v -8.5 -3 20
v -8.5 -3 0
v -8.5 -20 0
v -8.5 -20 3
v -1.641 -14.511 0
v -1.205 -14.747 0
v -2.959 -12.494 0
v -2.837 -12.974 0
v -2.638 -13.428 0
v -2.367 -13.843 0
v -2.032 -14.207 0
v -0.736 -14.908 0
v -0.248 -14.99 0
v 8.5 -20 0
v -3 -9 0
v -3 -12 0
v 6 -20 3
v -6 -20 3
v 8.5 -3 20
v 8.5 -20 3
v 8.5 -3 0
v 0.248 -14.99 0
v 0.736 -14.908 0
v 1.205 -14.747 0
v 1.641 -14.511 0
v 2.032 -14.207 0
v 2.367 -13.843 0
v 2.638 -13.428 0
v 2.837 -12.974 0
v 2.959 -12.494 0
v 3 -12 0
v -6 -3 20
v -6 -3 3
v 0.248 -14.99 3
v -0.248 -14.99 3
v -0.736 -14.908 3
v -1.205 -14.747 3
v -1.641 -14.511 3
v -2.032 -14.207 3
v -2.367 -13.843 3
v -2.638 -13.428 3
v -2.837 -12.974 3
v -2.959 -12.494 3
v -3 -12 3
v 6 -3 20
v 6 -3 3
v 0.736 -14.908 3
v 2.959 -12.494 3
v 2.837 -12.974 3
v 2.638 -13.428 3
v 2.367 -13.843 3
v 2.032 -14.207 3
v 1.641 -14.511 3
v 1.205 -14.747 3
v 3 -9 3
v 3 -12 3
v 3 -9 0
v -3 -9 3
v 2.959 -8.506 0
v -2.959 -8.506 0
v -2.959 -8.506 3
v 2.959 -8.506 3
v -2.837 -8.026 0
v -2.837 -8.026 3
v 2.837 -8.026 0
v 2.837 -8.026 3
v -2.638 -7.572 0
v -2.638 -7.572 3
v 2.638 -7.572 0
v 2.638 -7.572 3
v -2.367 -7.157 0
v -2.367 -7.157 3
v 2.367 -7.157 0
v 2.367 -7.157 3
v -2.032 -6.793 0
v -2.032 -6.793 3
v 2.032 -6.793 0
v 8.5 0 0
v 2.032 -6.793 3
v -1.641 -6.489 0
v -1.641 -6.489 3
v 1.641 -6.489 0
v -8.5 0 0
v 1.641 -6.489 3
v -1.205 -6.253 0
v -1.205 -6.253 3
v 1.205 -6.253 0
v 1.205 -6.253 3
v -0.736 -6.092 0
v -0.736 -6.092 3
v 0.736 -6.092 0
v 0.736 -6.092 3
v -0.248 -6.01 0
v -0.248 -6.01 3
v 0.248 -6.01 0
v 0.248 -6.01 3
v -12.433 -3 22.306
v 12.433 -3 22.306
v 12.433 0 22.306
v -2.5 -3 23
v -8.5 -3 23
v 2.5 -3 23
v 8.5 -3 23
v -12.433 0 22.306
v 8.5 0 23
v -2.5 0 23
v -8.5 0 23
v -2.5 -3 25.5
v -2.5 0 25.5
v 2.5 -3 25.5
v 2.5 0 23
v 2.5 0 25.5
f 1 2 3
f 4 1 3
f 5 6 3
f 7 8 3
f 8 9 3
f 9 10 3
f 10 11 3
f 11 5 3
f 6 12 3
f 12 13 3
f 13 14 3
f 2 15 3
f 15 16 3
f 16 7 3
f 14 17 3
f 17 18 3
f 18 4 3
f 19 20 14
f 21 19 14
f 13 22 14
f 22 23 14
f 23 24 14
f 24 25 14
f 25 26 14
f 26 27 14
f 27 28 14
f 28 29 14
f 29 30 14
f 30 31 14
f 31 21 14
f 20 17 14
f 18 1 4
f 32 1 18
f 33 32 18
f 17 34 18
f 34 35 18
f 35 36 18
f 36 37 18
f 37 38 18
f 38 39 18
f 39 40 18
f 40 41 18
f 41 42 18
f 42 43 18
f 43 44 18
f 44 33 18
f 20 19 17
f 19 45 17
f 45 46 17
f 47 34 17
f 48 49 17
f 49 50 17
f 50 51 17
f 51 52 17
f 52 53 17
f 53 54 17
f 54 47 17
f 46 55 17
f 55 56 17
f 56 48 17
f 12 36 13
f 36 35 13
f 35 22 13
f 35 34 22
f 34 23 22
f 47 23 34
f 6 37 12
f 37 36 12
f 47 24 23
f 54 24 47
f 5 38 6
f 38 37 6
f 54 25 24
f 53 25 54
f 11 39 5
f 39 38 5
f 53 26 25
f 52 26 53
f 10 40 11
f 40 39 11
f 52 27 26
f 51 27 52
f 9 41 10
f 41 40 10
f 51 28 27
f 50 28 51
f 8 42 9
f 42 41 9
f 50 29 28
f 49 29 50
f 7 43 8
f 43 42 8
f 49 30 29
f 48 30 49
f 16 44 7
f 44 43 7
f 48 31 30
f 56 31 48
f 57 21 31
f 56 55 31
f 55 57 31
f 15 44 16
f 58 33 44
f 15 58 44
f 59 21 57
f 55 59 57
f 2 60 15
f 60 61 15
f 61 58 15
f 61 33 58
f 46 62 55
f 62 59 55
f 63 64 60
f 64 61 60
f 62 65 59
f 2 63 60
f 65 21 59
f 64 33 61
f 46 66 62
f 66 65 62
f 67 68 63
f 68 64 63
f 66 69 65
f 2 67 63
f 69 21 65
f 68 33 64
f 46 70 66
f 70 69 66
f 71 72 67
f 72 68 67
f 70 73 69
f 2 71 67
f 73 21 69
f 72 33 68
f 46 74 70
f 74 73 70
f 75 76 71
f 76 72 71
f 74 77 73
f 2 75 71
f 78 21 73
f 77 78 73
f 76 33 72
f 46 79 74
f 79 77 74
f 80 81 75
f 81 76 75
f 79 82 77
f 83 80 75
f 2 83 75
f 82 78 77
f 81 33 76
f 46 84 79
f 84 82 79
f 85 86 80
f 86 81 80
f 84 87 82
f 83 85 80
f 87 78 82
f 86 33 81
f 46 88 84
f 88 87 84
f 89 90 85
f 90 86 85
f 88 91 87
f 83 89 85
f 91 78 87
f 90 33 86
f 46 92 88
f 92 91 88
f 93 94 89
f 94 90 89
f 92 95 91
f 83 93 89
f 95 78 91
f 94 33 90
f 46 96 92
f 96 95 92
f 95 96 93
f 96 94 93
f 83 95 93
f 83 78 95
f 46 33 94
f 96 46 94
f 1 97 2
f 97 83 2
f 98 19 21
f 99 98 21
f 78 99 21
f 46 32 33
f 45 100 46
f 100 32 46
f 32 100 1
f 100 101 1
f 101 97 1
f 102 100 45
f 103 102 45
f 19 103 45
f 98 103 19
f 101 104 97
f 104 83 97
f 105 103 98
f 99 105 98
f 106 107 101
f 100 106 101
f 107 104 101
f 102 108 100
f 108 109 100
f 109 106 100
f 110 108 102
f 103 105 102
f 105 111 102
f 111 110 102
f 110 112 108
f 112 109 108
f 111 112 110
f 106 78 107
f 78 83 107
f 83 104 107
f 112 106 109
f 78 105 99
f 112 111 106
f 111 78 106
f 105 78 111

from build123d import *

# Parameters (mm, degrees)
BOSS_EXTRUDE1_DEPTH      = 8.5
SKETCH2_W                = 17
SKETCH2_H                = 17
CUT_EXTRUDE1_DEPTH       = 6
CUT_EXTRUDE2_REACH       = 5
RESSALTO_EXTRUS_O1_DEPTH = 3
RESSALTO_EXTRUS_O2_DEPTH = 3
ESBO_O3_W                = 5
ESBO_O3_H                = 3
RESSALTO_EXTRUS_O3_DEPTH = 2.5


with BuildPart() as part:
    # Sketch1 → Boss-Extrude1 (new body, symmetric)
    with BuildSketch(Plane(origin=(0, 0, 0), x_dir=(0, 0, -1), z_dir=(1, 0, 0))):
        Polygon((0, 0), (-20, 0), (-20, -3), (-11.5, -11.5), (-3, -20), (0, -20), align=None)
    extrude(amount=BOSS_EXTRUDE1_DEPTH, both=True)

    # Sketch2 → Cut-Extrude1 (cut, symmetric)
    with BuildSketch(Plane(origin=(0, 0, 0), x_dir=(0, 0, -1), z_dir=(1, 0, 0))):
        with Locations((-11.5, -11.5)):
            Rectangle(SKETCH2_W, SKETCH2_H)
    extrude(amount=CUT_EXTRUDE1_DEPTH, both=True, mode=Mode.SUBTRACT)

    # Sketch3 → Cut-Extrude2 (cut, up to next)
    with BuildSketch(Plane.XY.offset(3), mode=Mode.PRIVATE) as cut_extrude2_sk1:
        with BuildLine():
            Line((-3, -9), (-3, -12))
            ThreePointArc((-3, -12), (0, -15), (3, -12))
            Line((3, -12), (3, -9))
            ThreePointArc((3, -9), (0, -6), (-3, -9))
        make_face()
    cut_extrude2_tool1 = extrude(cut_extrude2_sk1.sketch, amount=-CUT_EXTRUDE2_REACH, mode=Mode.PRIVATE) & part.part
    add(cut_extrude2_tool1.solids().sort_by_distance((0, -10.5, 3))[0], mode=Mode.SUBTRACT)

    # Esboço1 → Ressalto-extrusão1 (add)
    with BuildSketch(Plane.XY.offset(20)):
        Polygon((-8.5, 0), (-8.5, -3), (-6, -3), (6, -3), (8.5, -3), (8.5, 0), align=None)
    extrude(amount=RESSALTO_EXTRUS_O1_DEPTH)

    # Esboço2 → Ressalto-extrusão2 (add)
    with BuildSketch(Plane(origin=(0, 0, 0), x_dir=(1, 0, 0), z_dir=(0, 1, 0))):
        Polygon((-8.5, 0), (-12.433231648, -22.306465139), (-8.5, -23), align=None)
    ressalto_extrus_o2 = extrude(amount=-RESSALTO_EXTRUS_O2_DEPTH)

    # Esboço3 → Ressalto-extrusão3 (add)
    with BuildSketch(Plane.XY.offset(23)):
        with Locations((0, -1.5)):
            Rectangle(ESBO_O3_W, ESBO_O3_H)
    extrude(amount=RESSALTO_EXTRUS_O3_DEPTH)

    # Espelhar1: Ressalto-extrusão2 across plane
    add(ressalto_extrus_o2.mirror(Plane(origin=(0, 0, 0), x_dir=(0, 0, 1), z_dir=(1, 0, 0))))


solid = part.part
